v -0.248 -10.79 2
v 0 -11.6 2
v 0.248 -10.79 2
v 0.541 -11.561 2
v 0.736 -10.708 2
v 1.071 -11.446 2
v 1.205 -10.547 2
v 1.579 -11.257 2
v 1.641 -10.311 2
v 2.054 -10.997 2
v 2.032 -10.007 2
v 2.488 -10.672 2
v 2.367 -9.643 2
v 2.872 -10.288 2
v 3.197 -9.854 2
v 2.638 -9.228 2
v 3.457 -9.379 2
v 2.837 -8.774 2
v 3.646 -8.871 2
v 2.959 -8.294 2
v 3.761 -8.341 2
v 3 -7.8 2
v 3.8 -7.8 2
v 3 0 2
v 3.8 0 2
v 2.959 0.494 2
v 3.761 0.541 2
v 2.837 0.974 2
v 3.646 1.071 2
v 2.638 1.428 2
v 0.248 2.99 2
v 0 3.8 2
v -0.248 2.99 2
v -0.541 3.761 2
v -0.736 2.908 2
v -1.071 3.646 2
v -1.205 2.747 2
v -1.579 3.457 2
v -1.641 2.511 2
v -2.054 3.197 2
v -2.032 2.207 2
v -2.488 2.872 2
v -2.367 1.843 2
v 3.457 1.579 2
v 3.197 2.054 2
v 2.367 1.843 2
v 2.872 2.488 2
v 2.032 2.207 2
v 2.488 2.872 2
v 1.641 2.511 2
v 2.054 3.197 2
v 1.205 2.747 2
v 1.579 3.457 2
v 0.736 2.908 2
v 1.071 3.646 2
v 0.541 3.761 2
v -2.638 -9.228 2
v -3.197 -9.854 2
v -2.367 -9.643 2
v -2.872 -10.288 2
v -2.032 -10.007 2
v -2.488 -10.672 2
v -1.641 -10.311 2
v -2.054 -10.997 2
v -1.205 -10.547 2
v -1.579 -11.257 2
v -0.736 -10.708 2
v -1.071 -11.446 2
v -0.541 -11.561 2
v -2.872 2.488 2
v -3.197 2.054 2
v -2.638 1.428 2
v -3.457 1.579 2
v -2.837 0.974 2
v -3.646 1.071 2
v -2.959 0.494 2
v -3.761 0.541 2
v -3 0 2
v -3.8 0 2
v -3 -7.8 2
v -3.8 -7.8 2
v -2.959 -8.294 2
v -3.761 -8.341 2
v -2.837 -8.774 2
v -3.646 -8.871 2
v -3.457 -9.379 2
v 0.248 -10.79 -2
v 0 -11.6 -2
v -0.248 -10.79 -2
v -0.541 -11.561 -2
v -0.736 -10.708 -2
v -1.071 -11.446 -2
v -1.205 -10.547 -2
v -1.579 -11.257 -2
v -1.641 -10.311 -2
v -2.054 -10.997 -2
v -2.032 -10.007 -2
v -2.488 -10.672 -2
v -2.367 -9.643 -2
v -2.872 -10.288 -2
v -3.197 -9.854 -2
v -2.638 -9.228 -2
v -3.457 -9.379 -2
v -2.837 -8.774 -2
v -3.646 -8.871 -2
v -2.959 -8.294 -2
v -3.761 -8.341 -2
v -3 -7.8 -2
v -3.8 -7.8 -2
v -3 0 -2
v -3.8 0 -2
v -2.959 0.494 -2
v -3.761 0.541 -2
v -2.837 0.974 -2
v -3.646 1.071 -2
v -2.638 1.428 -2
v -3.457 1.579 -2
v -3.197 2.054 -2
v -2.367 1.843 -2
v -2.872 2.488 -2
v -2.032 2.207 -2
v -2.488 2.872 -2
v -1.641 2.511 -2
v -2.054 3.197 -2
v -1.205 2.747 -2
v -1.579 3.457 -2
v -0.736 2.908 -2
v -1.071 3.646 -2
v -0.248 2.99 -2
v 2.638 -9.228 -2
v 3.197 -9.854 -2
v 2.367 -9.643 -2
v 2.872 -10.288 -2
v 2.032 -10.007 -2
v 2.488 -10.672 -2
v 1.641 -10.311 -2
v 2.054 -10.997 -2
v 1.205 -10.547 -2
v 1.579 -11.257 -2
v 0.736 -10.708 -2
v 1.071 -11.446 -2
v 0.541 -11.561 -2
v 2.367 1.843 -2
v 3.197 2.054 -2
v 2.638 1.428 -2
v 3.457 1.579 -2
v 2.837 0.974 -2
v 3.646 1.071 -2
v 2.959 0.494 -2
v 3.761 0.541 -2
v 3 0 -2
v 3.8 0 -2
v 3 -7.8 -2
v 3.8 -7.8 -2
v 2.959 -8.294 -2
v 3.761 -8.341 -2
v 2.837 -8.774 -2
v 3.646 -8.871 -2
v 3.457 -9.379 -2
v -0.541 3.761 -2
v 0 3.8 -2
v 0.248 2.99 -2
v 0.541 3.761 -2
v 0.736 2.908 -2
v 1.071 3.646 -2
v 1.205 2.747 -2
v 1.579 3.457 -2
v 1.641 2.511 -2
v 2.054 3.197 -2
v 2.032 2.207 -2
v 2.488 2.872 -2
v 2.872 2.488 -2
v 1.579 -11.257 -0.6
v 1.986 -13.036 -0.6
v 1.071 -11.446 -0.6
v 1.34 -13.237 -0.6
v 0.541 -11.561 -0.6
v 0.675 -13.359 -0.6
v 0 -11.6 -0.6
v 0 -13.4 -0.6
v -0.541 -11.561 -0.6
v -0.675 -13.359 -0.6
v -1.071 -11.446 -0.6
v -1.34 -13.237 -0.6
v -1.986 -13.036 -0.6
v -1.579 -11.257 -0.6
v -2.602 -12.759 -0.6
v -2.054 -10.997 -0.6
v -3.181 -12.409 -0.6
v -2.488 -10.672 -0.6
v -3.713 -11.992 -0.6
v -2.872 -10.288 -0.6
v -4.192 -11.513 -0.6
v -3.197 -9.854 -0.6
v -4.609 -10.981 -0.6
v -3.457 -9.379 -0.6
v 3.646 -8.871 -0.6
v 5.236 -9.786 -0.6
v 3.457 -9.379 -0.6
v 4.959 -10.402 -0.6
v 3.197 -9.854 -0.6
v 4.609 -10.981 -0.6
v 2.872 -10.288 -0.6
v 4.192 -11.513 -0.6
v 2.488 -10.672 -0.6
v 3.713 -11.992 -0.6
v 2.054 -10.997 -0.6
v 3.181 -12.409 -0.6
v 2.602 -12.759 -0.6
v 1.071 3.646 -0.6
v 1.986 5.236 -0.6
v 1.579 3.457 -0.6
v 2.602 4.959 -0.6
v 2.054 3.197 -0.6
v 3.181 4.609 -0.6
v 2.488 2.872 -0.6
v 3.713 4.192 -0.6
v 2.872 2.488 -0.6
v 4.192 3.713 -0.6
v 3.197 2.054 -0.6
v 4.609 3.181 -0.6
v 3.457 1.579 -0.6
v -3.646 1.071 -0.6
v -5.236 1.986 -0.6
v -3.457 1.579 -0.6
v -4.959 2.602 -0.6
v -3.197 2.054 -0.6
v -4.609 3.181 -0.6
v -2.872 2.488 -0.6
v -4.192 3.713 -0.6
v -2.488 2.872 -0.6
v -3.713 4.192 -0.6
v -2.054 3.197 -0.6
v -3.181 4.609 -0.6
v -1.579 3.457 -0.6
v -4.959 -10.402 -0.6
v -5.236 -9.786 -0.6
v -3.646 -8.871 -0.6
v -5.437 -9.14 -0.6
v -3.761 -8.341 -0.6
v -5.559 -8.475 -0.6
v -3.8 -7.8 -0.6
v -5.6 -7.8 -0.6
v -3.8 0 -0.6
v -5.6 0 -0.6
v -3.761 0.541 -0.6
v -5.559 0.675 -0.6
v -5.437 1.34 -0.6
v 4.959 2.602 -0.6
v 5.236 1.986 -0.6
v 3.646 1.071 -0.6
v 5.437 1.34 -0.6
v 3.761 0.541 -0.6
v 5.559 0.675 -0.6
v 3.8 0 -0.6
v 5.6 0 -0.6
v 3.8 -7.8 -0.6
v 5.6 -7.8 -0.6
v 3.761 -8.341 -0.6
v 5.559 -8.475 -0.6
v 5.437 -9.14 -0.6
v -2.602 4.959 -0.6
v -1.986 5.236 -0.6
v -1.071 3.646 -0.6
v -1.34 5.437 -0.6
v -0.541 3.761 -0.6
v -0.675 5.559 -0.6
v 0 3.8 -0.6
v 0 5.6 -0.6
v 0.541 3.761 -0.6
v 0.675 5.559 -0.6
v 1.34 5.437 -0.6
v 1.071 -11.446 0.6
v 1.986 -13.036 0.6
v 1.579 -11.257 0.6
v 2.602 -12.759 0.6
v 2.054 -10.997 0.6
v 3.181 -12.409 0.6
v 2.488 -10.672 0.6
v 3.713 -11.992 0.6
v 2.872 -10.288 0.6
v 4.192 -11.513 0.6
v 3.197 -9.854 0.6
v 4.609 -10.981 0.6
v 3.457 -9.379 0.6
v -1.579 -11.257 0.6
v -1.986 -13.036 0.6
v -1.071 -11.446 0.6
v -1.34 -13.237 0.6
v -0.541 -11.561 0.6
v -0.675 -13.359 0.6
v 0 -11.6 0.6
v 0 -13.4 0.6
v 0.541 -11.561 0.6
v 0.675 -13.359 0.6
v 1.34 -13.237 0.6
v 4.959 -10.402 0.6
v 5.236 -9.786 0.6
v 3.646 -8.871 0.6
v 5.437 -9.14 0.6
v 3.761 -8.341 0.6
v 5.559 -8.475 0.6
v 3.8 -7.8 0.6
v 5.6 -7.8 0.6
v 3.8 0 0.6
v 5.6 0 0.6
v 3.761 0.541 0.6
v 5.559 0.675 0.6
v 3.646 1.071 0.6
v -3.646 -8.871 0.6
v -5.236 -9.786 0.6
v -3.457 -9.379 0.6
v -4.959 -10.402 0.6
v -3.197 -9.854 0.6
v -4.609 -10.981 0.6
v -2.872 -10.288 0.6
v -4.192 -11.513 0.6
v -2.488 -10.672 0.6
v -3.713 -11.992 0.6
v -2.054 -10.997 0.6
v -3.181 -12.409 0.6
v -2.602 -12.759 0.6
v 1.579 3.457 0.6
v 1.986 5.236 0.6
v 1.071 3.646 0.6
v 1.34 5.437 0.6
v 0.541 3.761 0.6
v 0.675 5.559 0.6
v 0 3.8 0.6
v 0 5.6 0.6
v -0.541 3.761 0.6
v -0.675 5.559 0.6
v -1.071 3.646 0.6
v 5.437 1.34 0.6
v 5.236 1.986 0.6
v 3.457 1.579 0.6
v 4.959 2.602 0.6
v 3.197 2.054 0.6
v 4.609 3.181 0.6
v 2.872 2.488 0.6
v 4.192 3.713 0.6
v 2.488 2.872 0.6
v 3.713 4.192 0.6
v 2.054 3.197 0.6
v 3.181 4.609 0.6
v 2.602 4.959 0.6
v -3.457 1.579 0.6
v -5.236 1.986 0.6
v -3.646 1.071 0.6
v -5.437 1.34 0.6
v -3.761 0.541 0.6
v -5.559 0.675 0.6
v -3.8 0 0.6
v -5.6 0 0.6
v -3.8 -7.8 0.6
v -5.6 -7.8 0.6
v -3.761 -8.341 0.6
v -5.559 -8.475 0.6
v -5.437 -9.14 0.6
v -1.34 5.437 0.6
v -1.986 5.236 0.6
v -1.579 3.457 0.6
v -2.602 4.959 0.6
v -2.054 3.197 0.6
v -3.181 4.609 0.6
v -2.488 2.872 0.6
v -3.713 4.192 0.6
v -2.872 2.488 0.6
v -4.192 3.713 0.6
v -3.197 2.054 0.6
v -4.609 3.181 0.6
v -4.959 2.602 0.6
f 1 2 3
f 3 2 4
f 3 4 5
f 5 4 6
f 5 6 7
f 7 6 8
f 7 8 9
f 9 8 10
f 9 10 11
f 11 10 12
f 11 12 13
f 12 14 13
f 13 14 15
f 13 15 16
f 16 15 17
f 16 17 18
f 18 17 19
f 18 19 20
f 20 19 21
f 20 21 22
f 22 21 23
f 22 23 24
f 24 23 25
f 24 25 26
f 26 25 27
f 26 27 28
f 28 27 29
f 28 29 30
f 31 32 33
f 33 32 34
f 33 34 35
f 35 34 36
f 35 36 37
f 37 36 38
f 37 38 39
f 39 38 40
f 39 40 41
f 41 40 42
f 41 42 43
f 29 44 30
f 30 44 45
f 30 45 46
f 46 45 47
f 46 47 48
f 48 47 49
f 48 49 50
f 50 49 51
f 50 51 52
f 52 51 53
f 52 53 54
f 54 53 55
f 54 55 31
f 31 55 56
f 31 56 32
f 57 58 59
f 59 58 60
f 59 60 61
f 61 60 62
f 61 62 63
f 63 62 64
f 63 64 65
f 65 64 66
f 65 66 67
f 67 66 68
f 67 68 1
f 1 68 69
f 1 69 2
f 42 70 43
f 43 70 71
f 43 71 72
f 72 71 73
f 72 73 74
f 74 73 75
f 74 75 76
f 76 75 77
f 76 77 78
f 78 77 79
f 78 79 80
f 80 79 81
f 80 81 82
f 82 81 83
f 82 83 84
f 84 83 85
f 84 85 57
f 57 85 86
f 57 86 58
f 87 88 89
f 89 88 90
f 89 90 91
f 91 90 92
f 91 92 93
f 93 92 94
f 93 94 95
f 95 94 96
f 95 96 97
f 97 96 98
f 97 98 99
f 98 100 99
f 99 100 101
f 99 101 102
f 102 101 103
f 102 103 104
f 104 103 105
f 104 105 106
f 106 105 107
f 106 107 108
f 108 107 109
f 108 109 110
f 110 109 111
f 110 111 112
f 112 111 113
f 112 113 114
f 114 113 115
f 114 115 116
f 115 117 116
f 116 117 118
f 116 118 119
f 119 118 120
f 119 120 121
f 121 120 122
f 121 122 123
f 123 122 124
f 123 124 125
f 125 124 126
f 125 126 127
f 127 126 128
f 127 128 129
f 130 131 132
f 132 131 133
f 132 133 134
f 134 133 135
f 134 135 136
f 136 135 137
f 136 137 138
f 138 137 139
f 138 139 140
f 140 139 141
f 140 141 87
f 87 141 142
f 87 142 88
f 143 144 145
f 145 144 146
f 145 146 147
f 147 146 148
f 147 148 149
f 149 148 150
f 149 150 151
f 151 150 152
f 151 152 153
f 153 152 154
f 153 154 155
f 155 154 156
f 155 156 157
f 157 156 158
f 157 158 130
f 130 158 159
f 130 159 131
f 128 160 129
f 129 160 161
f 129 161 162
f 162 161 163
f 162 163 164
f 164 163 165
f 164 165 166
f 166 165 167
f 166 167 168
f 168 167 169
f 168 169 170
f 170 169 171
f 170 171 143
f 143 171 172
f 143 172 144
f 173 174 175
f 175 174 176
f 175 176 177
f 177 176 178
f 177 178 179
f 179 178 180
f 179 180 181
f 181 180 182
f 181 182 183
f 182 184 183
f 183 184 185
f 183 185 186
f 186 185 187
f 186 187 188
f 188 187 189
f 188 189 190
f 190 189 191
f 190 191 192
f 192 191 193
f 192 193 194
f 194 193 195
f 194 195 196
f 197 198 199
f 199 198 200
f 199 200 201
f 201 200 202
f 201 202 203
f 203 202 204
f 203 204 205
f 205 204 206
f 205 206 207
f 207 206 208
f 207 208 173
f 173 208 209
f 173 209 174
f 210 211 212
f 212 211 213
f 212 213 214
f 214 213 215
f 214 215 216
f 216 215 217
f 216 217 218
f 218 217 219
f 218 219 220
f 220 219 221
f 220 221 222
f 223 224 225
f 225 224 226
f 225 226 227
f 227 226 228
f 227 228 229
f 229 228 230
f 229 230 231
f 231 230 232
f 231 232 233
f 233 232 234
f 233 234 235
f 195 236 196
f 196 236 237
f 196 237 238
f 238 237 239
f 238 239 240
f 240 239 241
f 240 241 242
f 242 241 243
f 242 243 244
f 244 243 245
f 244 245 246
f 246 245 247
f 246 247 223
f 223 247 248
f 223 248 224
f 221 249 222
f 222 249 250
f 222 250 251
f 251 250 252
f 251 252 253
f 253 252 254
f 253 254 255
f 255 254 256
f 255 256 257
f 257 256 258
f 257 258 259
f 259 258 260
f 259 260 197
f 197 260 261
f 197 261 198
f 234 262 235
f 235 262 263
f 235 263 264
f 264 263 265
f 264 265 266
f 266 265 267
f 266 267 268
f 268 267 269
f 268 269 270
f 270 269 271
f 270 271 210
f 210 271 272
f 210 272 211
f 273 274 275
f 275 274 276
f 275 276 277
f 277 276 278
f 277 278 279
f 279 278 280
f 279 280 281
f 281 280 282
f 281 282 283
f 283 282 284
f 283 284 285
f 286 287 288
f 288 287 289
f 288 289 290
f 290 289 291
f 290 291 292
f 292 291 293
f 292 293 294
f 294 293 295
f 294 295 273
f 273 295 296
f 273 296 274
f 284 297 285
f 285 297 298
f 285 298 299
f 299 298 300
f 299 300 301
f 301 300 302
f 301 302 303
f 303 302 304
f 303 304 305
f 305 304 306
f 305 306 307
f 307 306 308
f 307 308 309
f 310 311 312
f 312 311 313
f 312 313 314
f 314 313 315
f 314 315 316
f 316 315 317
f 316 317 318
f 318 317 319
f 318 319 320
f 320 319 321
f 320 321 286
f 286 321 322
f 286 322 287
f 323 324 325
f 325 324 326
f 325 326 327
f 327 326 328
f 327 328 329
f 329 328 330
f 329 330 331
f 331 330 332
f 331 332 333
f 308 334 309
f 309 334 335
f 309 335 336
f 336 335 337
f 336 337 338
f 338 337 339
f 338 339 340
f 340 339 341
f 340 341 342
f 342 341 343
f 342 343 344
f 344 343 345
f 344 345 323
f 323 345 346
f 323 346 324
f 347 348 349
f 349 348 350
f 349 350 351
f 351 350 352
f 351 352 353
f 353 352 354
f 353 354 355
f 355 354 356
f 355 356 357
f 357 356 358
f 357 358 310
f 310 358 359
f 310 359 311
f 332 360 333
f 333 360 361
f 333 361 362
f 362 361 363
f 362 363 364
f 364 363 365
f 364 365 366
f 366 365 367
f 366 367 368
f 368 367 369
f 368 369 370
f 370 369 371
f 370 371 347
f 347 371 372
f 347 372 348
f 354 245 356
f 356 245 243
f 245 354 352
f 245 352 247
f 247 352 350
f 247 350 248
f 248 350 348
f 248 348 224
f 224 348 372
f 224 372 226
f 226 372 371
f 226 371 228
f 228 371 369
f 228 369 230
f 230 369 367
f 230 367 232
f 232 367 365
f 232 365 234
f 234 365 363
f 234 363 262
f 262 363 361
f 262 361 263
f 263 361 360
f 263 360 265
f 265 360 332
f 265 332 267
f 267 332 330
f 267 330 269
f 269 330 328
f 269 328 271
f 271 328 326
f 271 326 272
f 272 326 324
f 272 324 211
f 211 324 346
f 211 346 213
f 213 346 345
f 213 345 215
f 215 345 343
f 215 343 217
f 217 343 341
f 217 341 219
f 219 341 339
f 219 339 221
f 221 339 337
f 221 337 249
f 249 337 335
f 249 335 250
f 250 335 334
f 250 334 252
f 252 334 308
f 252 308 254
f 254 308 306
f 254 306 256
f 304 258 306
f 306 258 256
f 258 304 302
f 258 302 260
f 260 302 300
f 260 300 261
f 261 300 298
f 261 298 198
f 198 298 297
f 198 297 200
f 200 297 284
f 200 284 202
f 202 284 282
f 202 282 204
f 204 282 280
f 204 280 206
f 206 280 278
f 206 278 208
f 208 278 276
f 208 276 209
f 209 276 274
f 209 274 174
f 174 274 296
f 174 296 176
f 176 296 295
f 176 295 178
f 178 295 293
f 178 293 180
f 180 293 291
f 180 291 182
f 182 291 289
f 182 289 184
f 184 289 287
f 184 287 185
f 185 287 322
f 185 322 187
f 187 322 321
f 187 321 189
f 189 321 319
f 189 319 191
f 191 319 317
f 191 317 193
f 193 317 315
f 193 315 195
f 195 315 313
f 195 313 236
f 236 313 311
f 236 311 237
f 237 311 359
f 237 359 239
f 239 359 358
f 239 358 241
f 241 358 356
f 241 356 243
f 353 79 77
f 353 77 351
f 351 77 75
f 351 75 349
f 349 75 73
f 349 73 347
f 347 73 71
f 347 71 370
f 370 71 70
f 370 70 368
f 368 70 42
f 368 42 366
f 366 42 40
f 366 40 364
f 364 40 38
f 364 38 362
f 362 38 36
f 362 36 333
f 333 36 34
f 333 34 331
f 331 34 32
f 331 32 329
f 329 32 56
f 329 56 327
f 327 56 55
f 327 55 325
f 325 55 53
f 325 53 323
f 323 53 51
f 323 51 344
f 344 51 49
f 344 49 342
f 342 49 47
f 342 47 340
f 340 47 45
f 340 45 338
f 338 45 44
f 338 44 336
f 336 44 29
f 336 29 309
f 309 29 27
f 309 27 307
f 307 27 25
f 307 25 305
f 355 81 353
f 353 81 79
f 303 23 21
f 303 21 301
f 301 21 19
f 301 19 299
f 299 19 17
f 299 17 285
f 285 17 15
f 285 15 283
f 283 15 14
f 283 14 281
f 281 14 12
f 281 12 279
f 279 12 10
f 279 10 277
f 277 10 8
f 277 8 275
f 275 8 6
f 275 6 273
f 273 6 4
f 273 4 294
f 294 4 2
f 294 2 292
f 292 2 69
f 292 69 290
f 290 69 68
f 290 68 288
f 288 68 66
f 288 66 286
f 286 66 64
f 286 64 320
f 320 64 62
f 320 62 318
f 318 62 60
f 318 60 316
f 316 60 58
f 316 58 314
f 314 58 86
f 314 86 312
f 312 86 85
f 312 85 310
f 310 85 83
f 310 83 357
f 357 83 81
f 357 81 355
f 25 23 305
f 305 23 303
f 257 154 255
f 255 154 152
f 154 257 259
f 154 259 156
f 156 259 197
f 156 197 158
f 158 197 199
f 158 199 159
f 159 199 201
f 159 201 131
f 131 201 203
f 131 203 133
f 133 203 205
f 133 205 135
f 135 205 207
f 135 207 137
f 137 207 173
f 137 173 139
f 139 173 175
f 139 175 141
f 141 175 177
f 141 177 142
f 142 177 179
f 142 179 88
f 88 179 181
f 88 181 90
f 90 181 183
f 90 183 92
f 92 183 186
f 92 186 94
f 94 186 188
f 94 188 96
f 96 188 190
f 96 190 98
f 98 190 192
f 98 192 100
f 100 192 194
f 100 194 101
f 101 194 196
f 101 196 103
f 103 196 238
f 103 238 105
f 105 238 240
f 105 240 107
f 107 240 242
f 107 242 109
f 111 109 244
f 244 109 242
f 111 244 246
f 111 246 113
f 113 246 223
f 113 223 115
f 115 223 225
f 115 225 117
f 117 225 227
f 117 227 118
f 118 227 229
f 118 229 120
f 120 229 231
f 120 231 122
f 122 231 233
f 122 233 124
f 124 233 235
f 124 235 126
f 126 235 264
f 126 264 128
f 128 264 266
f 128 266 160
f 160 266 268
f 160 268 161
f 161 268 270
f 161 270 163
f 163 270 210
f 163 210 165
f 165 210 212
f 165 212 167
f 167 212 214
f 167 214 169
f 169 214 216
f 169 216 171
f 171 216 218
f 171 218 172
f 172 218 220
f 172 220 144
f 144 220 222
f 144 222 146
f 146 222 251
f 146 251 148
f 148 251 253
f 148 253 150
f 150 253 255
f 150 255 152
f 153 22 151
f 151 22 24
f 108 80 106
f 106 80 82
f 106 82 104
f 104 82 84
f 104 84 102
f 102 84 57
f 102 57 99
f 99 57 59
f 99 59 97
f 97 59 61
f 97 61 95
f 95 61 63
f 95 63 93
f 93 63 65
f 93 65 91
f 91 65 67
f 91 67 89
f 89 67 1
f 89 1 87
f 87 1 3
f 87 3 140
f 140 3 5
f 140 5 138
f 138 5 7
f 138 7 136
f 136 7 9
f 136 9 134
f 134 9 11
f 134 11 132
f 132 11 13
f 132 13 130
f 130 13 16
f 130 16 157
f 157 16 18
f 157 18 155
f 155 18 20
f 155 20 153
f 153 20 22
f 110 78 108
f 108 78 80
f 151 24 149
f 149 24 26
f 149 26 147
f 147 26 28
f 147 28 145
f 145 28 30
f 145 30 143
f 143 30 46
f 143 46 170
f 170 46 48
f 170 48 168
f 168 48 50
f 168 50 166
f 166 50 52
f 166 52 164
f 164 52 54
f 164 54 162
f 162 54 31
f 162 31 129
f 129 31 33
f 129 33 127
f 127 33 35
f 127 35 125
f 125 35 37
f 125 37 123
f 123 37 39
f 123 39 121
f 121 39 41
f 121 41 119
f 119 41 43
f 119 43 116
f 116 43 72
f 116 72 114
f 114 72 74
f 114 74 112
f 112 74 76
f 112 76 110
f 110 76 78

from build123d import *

# Parameters (mm, degrees)
BOSS_EXTRUDE1_DEPTH      = 0.6
BOSS_EXTRUDE1_DEPTH_BACK = 0.6
BOSS_EXTRUDE2_DEPTH      = 2
BOSS_EXTRUDE2_DEPTH_BACK = 2
CUT_EXTRUDE1_DEPTH       = 15.660150067
CUT_EXTRUDE1_DEPTH_BACK  = 15.660150067


with BuildPart() as part:
    # Sketch1 → Boss-Extrude1 (new, two sides: drawn at the far end of the back side and taken through both)
    with BuildSketch(Plane.XY.offset(-BOSS_EXTRUDE1_DEPTH_BACK)):
        with BuildLine():
            Line((5.6, -7.8), (5.6, 0))
            ThreePointArc((5.6, 0), (0, 5.6), (-5.6, 0))
            Line((-5.6, 0), (-5.6, -7.8))
            ThreePointArc((-5.6, -7.8), (0, -13.4), (5.6, -7.8))
        make_face()
        with BuildLine():
            ThreePointArc((-3, 0), (0, 3), (3, 0))
            Line((3, 0), (3, -7.8))
            ThreePointArc((3, -7.8), (0, -10.8), (-3, -7.8))
            Line((-3, -7.8), (-3, 0))
        make_face(mode=Mode.SUBTRACT)
    extrude(amount=BOSS_EXTRUDE1_DEPTH + BOSS_EXTRUDE1_DEPTH_BACK)

    # Sketch1<3> → Boss-Extrude2 (add, two sides: drawn at the far end of the back side and taken through both)
    with BuildSketch(Plane.XY.offset(-BOSS_EXTRUDE2_DEPTH_BACK)):
        with BuildLine():
            Line((3.8, 0), (3.8, -7.8))
            ThreePointArc((3.8, -7.8), (0, -11.6), (-3.8, -7.8))
            Line((-3.8, -7.8), (-3.8, 0))
            ThreePointArc((-3.8, 0), (0, 3.8), (3.8, 0))
        make_face()
    extrude(amount=BOSS_EXTRUDE2_DEPTH + BOSS_EXTRUDE2_DEPTH_BACK)

    # Sketch1<4> → Cut-Extrude1 (cut, two sides: drawn at the far end of the back side and taken through both)
    with BuildSketch(Plane.XY.offset(-CUT_EXTRUDE1_DEPTH_BACK)):
        with BuildLine():
            Line((3, 0), (3, -7.8))
            ThreePointArc((3, -7.8), (0, -10.8), (-3, -7.8))
            Line((-3, -7.8), (-3, 0))
            ThreePointArc((-3, 0), (0, 3), (3, 0))
        make_face()
    extrude(amount=CUT_EXTRUDE1_DEPTH + CUT_EXTRUDE1_DEPTH_BACK, mode=Mode.SUBTRACT)


solid = part.part
